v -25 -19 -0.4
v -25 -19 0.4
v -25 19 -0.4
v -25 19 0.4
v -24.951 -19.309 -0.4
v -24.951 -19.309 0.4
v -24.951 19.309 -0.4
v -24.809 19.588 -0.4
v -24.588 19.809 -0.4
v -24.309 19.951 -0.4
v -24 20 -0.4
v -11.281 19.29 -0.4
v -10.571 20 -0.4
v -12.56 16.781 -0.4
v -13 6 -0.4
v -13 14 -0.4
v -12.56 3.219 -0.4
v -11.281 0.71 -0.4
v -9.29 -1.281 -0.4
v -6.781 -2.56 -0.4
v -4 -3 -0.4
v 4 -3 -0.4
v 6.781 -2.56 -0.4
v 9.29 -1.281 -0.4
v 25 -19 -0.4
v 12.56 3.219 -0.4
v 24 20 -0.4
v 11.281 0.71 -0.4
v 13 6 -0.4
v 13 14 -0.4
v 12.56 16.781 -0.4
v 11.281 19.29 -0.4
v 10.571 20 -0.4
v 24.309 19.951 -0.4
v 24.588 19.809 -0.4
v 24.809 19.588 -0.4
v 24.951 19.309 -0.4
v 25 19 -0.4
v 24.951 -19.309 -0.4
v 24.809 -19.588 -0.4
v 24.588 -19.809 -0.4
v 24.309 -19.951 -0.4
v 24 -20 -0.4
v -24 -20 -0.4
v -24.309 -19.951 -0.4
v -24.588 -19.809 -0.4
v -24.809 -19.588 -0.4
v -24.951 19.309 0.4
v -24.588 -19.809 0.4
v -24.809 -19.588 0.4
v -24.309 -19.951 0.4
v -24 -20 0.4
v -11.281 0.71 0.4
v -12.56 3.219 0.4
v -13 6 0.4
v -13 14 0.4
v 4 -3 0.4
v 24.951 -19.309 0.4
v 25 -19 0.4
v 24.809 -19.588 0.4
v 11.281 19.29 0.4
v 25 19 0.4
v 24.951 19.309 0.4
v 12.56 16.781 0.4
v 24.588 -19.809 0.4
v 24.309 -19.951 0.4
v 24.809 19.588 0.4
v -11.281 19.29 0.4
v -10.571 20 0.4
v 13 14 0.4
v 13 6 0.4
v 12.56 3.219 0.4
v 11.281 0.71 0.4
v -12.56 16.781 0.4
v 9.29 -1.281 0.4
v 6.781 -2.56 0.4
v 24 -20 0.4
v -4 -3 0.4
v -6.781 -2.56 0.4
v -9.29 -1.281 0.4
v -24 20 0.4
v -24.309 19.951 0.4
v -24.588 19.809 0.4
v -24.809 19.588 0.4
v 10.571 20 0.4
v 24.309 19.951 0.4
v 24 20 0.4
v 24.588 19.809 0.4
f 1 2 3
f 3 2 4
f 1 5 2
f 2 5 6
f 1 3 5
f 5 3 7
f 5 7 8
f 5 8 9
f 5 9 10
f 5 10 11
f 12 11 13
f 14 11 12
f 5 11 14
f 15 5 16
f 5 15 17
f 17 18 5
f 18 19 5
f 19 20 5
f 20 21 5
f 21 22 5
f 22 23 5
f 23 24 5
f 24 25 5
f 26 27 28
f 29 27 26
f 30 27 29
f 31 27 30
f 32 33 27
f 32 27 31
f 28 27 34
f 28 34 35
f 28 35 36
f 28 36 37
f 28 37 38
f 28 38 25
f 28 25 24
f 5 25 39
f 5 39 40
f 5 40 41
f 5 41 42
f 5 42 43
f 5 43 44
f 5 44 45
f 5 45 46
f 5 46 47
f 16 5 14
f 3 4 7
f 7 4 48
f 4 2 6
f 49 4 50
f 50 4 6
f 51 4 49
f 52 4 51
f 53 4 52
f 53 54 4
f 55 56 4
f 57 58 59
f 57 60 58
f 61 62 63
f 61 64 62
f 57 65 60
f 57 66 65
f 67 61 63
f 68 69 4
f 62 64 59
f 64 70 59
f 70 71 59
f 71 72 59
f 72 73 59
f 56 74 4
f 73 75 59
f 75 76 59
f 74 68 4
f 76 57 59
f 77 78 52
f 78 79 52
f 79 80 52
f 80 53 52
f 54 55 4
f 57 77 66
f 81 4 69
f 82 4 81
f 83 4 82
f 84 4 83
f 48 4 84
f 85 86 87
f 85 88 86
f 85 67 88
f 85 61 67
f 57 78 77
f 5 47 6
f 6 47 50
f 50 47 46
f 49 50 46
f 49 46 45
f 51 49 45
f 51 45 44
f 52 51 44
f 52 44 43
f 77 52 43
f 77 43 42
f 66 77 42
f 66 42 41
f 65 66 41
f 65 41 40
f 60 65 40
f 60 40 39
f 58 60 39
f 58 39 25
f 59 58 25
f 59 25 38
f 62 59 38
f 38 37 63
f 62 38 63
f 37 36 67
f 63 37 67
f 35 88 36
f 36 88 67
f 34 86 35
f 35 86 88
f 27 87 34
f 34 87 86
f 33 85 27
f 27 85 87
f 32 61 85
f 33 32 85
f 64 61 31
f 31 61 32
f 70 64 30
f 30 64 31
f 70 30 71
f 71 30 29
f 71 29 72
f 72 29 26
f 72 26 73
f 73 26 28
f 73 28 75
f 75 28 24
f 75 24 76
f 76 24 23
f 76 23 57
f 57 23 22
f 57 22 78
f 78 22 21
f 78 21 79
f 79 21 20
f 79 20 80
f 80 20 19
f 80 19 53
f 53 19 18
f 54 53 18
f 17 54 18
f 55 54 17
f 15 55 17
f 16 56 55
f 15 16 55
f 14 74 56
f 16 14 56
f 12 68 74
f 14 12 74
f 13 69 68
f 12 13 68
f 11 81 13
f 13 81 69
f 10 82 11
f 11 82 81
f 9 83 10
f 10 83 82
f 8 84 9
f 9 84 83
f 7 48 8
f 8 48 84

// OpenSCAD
// Vector-9000 - fast line follower robot (version 1.0)
// by Carlosgs (http://carlosgs.es) and Víctor Uceda
// CC-BY-SA license (http://creativecommons.org/licenses/by-sa/3.0/)
// Check http://www.thingiverse.com/thing:65012 for more information


sizeX = 90;
sizeY = 29;
sizeZ = 0.4*4;

difference() {
  roundedRect2D([50,40,0.8], 1);
  translate([0,10,0])
    roundedRect2D([26,26,20], 9);
}

// http://www.thingiverse.com/thing:9347
module roundedRect2D(size, radius)
{
$fn=20;
x = size[0]-radius*2;
y = size[1]-radius*2;
z = size[2];

minkowski()
{
cube(size=[x,y,z],center=true);
cylinder(r=radius,h=0.00001);
}
}
